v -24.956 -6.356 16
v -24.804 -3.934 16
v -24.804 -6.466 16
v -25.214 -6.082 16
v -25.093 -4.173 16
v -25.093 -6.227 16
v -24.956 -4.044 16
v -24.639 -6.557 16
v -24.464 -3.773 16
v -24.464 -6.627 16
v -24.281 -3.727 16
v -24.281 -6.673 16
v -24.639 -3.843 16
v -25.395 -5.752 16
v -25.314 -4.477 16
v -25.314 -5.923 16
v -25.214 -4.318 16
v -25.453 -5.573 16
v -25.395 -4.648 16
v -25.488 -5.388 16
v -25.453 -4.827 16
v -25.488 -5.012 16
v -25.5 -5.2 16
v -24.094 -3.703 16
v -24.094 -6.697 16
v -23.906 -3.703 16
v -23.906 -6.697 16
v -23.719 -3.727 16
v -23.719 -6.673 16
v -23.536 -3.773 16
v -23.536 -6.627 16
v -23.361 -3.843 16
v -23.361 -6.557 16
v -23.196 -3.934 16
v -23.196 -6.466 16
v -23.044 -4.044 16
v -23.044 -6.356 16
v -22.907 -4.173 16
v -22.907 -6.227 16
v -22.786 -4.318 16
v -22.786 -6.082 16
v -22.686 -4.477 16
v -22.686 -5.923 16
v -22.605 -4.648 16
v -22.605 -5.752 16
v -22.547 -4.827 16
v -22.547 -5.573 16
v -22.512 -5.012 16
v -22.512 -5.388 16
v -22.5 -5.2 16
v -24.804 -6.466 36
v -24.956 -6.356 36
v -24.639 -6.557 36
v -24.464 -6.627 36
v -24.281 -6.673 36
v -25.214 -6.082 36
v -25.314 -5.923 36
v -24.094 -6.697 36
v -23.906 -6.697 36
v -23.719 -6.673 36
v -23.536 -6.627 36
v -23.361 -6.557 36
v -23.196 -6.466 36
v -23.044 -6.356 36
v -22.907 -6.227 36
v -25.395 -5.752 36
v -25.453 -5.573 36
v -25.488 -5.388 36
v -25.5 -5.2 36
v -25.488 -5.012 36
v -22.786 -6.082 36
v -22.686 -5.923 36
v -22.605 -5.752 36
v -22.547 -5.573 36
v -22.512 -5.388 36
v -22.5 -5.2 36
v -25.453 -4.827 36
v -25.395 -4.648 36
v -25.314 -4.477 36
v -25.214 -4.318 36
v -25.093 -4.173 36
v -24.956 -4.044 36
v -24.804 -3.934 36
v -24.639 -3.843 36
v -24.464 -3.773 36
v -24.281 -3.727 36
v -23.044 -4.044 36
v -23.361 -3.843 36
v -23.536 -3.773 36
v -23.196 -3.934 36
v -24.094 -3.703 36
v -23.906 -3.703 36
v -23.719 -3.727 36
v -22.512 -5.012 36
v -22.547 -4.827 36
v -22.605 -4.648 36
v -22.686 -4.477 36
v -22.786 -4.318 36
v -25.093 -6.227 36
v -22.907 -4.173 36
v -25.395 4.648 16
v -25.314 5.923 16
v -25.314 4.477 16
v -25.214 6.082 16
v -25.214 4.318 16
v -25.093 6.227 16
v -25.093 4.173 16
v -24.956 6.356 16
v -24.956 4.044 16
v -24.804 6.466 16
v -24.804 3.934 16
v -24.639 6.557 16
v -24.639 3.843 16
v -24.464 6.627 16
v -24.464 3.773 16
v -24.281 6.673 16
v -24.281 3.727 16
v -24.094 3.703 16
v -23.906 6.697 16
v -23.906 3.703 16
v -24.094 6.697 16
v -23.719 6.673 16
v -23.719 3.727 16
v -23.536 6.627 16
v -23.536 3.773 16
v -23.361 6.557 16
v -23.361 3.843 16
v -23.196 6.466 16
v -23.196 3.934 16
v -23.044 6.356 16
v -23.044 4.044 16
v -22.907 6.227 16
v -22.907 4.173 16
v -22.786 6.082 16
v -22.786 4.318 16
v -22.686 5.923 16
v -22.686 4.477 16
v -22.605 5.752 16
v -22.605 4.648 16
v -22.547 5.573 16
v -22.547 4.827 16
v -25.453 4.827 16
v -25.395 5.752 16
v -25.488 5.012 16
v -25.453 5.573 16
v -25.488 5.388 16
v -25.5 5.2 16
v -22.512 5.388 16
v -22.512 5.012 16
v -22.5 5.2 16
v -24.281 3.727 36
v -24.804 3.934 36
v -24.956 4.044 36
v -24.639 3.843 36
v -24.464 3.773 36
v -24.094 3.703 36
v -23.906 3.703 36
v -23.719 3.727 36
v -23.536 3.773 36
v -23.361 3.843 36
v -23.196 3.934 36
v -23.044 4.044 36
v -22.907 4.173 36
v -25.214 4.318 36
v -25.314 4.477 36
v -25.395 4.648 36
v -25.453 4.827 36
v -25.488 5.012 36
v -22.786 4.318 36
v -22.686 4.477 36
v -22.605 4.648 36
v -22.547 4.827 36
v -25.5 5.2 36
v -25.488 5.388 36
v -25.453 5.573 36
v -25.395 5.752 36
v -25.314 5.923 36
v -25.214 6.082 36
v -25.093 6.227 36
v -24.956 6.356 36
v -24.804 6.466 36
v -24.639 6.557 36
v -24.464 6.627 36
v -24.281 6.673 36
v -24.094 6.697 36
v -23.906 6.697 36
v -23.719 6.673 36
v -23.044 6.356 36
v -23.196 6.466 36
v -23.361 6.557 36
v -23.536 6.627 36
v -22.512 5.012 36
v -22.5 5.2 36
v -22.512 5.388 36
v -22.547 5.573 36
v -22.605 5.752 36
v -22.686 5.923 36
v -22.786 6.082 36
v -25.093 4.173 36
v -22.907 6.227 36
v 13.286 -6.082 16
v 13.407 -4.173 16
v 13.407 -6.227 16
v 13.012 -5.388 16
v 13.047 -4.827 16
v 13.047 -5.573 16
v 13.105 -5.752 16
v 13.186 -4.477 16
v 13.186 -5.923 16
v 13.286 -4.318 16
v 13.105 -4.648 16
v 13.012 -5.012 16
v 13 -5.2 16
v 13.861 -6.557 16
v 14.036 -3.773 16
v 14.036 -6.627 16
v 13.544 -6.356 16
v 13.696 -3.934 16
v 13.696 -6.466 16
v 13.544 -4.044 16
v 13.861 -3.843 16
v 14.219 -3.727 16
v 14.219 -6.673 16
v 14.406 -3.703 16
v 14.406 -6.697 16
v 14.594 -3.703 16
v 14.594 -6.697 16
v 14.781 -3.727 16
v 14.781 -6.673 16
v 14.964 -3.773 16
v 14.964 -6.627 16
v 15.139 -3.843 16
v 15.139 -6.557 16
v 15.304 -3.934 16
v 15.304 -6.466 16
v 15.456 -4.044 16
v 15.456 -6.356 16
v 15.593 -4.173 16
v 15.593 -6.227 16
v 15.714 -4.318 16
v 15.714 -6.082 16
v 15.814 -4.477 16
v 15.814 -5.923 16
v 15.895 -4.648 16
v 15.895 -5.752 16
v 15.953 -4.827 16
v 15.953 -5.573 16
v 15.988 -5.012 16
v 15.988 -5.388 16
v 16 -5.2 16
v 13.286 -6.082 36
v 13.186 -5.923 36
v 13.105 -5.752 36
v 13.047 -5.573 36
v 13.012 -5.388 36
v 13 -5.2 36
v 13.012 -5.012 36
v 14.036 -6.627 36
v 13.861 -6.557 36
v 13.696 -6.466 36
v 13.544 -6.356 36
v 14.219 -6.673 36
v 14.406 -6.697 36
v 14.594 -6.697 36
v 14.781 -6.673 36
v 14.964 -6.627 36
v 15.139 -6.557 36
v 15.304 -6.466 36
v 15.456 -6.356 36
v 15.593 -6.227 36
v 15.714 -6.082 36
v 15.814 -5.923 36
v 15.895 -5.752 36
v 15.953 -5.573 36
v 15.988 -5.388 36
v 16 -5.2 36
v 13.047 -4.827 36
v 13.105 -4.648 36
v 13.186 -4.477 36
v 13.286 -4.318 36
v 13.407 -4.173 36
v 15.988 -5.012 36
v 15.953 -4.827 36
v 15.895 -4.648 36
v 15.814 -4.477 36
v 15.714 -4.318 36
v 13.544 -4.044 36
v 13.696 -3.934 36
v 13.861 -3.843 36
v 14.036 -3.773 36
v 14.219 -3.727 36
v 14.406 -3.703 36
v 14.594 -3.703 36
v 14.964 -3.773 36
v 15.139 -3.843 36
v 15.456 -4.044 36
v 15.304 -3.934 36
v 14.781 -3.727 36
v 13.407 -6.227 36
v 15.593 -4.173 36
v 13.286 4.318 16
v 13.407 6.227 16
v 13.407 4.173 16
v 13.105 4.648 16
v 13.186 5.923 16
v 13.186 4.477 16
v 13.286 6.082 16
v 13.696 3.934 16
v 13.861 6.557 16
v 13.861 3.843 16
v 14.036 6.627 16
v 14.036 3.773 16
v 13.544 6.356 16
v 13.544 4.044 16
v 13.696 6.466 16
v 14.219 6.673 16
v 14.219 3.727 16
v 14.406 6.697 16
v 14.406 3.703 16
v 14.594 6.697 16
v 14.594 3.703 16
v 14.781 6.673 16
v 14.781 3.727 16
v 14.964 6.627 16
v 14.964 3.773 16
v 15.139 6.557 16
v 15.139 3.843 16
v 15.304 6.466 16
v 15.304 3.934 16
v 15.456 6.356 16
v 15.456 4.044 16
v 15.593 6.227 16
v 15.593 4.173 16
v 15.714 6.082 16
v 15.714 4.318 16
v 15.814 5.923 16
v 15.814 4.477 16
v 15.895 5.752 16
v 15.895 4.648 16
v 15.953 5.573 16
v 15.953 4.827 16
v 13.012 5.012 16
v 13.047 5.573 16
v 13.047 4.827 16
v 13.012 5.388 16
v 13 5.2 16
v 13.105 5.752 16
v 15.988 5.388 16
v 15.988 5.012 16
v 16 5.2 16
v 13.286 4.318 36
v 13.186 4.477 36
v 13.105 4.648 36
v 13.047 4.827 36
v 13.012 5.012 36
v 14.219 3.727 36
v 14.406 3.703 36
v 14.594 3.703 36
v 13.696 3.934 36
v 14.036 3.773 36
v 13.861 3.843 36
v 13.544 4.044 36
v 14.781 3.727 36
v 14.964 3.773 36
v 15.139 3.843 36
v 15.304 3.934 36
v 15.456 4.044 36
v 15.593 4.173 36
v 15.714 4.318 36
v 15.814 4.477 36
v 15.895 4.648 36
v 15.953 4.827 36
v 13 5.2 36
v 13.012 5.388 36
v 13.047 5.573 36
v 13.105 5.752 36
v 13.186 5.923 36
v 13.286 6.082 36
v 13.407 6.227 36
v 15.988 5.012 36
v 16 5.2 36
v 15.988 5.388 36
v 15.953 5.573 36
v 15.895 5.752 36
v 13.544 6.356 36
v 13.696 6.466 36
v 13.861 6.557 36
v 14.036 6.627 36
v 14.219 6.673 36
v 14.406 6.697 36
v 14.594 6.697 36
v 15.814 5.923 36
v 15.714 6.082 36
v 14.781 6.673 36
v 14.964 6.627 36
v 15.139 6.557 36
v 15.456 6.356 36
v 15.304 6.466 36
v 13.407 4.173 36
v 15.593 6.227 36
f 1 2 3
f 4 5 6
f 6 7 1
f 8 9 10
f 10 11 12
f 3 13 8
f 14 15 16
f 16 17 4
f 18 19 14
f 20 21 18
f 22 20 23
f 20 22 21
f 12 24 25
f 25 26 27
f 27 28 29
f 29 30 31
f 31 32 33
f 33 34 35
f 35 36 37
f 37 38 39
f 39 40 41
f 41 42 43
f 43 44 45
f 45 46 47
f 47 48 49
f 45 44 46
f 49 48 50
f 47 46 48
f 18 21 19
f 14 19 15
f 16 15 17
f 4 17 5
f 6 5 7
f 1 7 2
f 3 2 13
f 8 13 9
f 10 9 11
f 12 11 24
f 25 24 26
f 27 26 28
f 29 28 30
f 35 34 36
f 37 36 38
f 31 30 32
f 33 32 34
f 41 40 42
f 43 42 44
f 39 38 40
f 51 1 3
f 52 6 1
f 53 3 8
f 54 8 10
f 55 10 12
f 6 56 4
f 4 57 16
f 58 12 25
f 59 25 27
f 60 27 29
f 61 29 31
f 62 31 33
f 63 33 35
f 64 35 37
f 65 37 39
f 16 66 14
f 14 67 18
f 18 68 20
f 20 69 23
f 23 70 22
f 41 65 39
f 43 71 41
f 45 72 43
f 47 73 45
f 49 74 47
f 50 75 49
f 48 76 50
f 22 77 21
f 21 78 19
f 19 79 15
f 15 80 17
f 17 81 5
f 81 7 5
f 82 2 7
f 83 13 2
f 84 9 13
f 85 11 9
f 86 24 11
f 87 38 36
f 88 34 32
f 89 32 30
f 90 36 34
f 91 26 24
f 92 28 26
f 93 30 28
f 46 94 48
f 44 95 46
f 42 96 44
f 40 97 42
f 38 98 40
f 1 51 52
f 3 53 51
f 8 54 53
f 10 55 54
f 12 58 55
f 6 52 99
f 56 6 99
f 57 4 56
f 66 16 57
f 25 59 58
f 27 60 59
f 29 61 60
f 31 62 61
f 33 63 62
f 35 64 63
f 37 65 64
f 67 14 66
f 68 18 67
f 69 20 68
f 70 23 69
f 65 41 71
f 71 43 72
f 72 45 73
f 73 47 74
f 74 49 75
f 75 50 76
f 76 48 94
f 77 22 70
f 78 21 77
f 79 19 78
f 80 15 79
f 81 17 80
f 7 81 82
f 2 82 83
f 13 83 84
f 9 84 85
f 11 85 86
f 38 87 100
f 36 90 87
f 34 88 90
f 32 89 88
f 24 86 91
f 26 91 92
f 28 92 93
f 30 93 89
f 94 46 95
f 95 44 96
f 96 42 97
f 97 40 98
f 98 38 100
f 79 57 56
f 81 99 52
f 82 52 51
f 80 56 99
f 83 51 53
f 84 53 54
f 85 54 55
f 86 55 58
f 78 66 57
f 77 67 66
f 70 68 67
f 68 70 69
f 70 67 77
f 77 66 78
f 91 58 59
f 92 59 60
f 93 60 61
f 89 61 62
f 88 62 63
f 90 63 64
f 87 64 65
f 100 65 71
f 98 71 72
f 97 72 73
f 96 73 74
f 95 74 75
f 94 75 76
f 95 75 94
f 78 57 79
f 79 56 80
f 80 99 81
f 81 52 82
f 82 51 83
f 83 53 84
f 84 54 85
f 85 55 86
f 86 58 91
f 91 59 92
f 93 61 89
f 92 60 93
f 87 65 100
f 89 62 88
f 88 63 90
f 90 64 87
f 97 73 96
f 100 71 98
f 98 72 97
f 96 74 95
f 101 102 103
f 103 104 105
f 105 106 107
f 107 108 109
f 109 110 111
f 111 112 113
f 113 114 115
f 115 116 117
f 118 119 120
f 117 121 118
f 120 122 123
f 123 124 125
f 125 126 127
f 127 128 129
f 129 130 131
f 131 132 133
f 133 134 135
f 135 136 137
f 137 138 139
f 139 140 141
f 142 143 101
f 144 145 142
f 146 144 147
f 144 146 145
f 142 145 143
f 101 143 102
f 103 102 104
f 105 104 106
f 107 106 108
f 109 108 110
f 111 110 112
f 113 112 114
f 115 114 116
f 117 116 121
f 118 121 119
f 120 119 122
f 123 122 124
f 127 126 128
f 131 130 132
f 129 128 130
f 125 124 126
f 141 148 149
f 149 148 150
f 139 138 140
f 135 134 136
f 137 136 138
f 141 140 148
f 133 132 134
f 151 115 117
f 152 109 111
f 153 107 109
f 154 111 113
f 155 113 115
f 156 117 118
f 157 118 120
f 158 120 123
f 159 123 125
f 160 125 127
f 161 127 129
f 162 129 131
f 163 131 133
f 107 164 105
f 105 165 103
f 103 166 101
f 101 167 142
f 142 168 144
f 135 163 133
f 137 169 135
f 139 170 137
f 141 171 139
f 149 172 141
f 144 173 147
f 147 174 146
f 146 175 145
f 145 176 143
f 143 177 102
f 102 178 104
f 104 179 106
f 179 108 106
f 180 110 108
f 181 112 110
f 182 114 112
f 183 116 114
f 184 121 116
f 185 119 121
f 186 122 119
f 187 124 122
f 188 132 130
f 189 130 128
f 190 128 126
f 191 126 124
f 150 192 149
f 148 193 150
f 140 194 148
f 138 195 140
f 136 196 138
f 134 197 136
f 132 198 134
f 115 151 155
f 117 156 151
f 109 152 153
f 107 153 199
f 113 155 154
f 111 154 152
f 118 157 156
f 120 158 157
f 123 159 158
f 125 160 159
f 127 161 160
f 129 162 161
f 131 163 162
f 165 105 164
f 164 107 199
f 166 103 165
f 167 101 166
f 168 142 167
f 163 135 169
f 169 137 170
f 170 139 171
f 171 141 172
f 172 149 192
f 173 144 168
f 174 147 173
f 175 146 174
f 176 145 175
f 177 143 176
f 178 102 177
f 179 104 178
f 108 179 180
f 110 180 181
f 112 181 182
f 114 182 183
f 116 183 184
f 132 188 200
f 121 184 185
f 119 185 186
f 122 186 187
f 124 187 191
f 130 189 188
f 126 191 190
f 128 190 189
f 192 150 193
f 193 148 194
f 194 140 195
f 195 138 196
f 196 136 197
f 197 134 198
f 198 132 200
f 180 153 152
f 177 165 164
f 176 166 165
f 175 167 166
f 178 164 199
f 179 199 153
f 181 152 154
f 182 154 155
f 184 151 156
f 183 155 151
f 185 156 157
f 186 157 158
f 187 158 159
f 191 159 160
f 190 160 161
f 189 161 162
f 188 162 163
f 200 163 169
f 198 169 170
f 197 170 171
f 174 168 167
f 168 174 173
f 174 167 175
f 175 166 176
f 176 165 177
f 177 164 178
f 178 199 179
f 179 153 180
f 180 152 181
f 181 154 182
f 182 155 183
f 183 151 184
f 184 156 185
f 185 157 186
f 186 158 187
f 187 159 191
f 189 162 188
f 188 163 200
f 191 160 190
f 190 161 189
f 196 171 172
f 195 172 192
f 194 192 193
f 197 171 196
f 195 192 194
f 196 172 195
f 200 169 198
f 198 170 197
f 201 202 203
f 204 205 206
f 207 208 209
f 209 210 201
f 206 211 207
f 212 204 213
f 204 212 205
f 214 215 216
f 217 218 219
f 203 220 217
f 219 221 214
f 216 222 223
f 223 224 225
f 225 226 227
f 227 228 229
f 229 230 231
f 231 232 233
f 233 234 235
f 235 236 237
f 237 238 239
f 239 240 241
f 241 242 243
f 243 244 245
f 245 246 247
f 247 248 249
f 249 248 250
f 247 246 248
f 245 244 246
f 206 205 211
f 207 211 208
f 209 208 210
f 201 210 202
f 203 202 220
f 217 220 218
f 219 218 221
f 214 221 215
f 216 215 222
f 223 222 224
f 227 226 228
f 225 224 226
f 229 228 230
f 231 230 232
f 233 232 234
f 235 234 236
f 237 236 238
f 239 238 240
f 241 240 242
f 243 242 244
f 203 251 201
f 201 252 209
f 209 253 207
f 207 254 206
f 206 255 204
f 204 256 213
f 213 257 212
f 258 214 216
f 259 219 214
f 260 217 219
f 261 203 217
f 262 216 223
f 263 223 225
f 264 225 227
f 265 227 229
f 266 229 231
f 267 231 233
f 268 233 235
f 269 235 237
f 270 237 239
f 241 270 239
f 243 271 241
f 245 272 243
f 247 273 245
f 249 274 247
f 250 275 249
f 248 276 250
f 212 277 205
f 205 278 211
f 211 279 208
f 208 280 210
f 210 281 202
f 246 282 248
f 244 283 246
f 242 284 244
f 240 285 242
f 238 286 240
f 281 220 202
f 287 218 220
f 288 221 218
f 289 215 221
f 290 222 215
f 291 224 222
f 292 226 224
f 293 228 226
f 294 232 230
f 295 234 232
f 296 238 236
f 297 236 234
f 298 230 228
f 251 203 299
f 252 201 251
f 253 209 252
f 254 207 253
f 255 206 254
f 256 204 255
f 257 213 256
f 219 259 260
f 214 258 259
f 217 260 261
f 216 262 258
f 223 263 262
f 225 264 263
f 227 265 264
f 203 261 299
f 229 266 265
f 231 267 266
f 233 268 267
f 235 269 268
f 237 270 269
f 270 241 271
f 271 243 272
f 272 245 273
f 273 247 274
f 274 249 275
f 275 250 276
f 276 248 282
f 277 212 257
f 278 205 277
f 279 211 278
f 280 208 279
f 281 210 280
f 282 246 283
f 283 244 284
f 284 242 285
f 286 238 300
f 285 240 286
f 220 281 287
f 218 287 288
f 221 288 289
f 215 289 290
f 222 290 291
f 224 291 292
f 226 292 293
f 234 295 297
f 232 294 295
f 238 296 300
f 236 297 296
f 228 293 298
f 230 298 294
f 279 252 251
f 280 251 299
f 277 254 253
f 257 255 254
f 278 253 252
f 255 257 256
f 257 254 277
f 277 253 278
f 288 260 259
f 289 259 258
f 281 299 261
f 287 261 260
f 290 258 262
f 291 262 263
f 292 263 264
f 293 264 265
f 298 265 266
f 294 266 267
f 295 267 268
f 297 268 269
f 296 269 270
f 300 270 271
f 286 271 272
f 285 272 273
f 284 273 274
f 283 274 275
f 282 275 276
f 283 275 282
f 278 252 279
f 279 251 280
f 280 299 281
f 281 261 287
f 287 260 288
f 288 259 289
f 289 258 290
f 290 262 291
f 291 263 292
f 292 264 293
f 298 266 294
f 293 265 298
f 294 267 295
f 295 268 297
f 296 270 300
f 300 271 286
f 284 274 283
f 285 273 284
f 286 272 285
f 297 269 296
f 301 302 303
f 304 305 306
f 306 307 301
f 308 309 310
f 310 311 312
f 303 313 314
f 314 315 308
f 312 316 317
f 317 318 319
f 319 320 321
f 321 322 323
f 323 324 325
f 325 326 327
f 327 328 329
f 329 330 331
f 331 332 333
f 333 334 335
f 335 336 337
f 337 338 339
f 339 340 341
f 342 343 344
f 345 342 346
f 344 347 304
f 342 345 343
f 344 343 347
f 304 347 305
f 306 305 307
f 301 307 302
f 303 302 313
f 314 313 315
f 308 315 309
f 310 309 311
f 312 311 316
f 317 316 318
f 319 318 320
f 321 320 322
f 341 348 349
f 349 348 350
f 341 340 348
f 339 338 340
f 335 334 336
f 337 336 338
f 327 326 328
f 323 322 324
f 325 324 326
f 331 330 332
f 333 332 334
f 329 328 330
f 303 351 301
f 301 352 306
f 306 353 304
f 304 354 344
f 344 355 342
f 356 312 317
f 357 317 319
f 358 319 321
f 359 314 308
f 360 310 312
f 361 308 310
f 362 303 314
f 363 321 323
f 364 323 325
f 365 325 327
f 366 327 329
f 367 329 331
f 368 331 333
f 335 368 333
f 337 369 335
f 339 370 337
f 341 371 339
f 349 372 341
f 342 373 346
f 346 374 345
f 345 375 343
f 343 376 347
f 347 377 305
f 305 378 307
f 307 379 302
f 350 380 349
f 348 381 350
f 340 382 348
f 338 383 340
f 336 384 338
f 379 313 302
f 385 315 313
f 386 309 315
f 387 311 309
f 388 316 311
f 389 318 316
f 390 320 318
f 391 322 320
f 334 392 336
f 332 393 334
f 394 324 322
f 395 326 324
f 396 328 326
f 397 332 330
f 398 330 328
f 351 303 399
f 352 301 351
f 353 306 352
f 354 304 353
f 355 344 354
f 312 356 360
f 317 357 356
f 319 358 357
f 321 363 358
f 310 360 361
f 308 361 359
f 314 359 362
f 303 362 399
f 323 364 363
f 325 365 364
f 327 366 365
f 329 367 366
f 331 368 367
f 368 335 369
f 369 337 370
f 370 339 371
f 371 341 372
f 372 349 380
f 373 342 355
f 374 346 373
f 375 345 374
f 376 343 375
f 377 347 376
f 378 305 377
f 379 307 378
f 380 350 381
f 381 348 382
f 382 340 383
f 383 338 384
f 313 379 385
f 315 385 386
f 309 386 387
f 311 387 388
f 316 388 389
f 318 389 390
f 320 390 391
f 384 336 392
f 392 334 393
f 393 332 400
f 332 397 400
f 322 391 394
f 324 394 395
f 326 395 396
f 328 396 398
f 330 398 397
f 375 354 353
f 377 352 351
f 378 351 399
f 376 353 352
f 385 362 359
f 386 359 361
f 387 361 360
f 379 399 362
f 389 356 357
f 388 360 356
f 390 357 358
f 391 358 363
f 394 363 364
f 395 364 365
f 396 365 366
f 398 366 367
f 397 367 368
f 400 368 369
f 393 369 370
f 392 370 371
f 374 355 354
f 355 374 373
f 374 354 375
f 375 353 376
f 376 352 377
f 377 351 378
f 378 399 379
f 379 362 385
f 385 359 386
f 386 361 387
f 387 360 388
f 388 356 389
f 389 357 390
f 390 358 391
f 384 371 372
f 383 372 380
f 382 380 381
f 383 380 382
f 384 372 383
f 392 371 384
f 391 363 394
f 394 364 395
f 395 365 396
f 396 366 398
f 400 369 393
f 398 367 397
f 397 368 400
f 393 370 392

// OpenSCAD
$fn = 50;

difference() {
	union() {
		translate(v = [-24, -5.2, 16.0]) {
			cylinder(h = 20, r = 1.5);
		}
		translate(v = [-24, 5.2, 16.0]) {
			cylinder(h = 20, r = 1.5);
		}
		translate(v = [14.5, -5.2, 16.0]) {
			cylinder(h = 20, r = 1.5);
		}
		translate(v = [14.5, 5.2, 16.0]) {
			cylinder(h = 20, r = 1.5);
		}
	}
	union();
}
